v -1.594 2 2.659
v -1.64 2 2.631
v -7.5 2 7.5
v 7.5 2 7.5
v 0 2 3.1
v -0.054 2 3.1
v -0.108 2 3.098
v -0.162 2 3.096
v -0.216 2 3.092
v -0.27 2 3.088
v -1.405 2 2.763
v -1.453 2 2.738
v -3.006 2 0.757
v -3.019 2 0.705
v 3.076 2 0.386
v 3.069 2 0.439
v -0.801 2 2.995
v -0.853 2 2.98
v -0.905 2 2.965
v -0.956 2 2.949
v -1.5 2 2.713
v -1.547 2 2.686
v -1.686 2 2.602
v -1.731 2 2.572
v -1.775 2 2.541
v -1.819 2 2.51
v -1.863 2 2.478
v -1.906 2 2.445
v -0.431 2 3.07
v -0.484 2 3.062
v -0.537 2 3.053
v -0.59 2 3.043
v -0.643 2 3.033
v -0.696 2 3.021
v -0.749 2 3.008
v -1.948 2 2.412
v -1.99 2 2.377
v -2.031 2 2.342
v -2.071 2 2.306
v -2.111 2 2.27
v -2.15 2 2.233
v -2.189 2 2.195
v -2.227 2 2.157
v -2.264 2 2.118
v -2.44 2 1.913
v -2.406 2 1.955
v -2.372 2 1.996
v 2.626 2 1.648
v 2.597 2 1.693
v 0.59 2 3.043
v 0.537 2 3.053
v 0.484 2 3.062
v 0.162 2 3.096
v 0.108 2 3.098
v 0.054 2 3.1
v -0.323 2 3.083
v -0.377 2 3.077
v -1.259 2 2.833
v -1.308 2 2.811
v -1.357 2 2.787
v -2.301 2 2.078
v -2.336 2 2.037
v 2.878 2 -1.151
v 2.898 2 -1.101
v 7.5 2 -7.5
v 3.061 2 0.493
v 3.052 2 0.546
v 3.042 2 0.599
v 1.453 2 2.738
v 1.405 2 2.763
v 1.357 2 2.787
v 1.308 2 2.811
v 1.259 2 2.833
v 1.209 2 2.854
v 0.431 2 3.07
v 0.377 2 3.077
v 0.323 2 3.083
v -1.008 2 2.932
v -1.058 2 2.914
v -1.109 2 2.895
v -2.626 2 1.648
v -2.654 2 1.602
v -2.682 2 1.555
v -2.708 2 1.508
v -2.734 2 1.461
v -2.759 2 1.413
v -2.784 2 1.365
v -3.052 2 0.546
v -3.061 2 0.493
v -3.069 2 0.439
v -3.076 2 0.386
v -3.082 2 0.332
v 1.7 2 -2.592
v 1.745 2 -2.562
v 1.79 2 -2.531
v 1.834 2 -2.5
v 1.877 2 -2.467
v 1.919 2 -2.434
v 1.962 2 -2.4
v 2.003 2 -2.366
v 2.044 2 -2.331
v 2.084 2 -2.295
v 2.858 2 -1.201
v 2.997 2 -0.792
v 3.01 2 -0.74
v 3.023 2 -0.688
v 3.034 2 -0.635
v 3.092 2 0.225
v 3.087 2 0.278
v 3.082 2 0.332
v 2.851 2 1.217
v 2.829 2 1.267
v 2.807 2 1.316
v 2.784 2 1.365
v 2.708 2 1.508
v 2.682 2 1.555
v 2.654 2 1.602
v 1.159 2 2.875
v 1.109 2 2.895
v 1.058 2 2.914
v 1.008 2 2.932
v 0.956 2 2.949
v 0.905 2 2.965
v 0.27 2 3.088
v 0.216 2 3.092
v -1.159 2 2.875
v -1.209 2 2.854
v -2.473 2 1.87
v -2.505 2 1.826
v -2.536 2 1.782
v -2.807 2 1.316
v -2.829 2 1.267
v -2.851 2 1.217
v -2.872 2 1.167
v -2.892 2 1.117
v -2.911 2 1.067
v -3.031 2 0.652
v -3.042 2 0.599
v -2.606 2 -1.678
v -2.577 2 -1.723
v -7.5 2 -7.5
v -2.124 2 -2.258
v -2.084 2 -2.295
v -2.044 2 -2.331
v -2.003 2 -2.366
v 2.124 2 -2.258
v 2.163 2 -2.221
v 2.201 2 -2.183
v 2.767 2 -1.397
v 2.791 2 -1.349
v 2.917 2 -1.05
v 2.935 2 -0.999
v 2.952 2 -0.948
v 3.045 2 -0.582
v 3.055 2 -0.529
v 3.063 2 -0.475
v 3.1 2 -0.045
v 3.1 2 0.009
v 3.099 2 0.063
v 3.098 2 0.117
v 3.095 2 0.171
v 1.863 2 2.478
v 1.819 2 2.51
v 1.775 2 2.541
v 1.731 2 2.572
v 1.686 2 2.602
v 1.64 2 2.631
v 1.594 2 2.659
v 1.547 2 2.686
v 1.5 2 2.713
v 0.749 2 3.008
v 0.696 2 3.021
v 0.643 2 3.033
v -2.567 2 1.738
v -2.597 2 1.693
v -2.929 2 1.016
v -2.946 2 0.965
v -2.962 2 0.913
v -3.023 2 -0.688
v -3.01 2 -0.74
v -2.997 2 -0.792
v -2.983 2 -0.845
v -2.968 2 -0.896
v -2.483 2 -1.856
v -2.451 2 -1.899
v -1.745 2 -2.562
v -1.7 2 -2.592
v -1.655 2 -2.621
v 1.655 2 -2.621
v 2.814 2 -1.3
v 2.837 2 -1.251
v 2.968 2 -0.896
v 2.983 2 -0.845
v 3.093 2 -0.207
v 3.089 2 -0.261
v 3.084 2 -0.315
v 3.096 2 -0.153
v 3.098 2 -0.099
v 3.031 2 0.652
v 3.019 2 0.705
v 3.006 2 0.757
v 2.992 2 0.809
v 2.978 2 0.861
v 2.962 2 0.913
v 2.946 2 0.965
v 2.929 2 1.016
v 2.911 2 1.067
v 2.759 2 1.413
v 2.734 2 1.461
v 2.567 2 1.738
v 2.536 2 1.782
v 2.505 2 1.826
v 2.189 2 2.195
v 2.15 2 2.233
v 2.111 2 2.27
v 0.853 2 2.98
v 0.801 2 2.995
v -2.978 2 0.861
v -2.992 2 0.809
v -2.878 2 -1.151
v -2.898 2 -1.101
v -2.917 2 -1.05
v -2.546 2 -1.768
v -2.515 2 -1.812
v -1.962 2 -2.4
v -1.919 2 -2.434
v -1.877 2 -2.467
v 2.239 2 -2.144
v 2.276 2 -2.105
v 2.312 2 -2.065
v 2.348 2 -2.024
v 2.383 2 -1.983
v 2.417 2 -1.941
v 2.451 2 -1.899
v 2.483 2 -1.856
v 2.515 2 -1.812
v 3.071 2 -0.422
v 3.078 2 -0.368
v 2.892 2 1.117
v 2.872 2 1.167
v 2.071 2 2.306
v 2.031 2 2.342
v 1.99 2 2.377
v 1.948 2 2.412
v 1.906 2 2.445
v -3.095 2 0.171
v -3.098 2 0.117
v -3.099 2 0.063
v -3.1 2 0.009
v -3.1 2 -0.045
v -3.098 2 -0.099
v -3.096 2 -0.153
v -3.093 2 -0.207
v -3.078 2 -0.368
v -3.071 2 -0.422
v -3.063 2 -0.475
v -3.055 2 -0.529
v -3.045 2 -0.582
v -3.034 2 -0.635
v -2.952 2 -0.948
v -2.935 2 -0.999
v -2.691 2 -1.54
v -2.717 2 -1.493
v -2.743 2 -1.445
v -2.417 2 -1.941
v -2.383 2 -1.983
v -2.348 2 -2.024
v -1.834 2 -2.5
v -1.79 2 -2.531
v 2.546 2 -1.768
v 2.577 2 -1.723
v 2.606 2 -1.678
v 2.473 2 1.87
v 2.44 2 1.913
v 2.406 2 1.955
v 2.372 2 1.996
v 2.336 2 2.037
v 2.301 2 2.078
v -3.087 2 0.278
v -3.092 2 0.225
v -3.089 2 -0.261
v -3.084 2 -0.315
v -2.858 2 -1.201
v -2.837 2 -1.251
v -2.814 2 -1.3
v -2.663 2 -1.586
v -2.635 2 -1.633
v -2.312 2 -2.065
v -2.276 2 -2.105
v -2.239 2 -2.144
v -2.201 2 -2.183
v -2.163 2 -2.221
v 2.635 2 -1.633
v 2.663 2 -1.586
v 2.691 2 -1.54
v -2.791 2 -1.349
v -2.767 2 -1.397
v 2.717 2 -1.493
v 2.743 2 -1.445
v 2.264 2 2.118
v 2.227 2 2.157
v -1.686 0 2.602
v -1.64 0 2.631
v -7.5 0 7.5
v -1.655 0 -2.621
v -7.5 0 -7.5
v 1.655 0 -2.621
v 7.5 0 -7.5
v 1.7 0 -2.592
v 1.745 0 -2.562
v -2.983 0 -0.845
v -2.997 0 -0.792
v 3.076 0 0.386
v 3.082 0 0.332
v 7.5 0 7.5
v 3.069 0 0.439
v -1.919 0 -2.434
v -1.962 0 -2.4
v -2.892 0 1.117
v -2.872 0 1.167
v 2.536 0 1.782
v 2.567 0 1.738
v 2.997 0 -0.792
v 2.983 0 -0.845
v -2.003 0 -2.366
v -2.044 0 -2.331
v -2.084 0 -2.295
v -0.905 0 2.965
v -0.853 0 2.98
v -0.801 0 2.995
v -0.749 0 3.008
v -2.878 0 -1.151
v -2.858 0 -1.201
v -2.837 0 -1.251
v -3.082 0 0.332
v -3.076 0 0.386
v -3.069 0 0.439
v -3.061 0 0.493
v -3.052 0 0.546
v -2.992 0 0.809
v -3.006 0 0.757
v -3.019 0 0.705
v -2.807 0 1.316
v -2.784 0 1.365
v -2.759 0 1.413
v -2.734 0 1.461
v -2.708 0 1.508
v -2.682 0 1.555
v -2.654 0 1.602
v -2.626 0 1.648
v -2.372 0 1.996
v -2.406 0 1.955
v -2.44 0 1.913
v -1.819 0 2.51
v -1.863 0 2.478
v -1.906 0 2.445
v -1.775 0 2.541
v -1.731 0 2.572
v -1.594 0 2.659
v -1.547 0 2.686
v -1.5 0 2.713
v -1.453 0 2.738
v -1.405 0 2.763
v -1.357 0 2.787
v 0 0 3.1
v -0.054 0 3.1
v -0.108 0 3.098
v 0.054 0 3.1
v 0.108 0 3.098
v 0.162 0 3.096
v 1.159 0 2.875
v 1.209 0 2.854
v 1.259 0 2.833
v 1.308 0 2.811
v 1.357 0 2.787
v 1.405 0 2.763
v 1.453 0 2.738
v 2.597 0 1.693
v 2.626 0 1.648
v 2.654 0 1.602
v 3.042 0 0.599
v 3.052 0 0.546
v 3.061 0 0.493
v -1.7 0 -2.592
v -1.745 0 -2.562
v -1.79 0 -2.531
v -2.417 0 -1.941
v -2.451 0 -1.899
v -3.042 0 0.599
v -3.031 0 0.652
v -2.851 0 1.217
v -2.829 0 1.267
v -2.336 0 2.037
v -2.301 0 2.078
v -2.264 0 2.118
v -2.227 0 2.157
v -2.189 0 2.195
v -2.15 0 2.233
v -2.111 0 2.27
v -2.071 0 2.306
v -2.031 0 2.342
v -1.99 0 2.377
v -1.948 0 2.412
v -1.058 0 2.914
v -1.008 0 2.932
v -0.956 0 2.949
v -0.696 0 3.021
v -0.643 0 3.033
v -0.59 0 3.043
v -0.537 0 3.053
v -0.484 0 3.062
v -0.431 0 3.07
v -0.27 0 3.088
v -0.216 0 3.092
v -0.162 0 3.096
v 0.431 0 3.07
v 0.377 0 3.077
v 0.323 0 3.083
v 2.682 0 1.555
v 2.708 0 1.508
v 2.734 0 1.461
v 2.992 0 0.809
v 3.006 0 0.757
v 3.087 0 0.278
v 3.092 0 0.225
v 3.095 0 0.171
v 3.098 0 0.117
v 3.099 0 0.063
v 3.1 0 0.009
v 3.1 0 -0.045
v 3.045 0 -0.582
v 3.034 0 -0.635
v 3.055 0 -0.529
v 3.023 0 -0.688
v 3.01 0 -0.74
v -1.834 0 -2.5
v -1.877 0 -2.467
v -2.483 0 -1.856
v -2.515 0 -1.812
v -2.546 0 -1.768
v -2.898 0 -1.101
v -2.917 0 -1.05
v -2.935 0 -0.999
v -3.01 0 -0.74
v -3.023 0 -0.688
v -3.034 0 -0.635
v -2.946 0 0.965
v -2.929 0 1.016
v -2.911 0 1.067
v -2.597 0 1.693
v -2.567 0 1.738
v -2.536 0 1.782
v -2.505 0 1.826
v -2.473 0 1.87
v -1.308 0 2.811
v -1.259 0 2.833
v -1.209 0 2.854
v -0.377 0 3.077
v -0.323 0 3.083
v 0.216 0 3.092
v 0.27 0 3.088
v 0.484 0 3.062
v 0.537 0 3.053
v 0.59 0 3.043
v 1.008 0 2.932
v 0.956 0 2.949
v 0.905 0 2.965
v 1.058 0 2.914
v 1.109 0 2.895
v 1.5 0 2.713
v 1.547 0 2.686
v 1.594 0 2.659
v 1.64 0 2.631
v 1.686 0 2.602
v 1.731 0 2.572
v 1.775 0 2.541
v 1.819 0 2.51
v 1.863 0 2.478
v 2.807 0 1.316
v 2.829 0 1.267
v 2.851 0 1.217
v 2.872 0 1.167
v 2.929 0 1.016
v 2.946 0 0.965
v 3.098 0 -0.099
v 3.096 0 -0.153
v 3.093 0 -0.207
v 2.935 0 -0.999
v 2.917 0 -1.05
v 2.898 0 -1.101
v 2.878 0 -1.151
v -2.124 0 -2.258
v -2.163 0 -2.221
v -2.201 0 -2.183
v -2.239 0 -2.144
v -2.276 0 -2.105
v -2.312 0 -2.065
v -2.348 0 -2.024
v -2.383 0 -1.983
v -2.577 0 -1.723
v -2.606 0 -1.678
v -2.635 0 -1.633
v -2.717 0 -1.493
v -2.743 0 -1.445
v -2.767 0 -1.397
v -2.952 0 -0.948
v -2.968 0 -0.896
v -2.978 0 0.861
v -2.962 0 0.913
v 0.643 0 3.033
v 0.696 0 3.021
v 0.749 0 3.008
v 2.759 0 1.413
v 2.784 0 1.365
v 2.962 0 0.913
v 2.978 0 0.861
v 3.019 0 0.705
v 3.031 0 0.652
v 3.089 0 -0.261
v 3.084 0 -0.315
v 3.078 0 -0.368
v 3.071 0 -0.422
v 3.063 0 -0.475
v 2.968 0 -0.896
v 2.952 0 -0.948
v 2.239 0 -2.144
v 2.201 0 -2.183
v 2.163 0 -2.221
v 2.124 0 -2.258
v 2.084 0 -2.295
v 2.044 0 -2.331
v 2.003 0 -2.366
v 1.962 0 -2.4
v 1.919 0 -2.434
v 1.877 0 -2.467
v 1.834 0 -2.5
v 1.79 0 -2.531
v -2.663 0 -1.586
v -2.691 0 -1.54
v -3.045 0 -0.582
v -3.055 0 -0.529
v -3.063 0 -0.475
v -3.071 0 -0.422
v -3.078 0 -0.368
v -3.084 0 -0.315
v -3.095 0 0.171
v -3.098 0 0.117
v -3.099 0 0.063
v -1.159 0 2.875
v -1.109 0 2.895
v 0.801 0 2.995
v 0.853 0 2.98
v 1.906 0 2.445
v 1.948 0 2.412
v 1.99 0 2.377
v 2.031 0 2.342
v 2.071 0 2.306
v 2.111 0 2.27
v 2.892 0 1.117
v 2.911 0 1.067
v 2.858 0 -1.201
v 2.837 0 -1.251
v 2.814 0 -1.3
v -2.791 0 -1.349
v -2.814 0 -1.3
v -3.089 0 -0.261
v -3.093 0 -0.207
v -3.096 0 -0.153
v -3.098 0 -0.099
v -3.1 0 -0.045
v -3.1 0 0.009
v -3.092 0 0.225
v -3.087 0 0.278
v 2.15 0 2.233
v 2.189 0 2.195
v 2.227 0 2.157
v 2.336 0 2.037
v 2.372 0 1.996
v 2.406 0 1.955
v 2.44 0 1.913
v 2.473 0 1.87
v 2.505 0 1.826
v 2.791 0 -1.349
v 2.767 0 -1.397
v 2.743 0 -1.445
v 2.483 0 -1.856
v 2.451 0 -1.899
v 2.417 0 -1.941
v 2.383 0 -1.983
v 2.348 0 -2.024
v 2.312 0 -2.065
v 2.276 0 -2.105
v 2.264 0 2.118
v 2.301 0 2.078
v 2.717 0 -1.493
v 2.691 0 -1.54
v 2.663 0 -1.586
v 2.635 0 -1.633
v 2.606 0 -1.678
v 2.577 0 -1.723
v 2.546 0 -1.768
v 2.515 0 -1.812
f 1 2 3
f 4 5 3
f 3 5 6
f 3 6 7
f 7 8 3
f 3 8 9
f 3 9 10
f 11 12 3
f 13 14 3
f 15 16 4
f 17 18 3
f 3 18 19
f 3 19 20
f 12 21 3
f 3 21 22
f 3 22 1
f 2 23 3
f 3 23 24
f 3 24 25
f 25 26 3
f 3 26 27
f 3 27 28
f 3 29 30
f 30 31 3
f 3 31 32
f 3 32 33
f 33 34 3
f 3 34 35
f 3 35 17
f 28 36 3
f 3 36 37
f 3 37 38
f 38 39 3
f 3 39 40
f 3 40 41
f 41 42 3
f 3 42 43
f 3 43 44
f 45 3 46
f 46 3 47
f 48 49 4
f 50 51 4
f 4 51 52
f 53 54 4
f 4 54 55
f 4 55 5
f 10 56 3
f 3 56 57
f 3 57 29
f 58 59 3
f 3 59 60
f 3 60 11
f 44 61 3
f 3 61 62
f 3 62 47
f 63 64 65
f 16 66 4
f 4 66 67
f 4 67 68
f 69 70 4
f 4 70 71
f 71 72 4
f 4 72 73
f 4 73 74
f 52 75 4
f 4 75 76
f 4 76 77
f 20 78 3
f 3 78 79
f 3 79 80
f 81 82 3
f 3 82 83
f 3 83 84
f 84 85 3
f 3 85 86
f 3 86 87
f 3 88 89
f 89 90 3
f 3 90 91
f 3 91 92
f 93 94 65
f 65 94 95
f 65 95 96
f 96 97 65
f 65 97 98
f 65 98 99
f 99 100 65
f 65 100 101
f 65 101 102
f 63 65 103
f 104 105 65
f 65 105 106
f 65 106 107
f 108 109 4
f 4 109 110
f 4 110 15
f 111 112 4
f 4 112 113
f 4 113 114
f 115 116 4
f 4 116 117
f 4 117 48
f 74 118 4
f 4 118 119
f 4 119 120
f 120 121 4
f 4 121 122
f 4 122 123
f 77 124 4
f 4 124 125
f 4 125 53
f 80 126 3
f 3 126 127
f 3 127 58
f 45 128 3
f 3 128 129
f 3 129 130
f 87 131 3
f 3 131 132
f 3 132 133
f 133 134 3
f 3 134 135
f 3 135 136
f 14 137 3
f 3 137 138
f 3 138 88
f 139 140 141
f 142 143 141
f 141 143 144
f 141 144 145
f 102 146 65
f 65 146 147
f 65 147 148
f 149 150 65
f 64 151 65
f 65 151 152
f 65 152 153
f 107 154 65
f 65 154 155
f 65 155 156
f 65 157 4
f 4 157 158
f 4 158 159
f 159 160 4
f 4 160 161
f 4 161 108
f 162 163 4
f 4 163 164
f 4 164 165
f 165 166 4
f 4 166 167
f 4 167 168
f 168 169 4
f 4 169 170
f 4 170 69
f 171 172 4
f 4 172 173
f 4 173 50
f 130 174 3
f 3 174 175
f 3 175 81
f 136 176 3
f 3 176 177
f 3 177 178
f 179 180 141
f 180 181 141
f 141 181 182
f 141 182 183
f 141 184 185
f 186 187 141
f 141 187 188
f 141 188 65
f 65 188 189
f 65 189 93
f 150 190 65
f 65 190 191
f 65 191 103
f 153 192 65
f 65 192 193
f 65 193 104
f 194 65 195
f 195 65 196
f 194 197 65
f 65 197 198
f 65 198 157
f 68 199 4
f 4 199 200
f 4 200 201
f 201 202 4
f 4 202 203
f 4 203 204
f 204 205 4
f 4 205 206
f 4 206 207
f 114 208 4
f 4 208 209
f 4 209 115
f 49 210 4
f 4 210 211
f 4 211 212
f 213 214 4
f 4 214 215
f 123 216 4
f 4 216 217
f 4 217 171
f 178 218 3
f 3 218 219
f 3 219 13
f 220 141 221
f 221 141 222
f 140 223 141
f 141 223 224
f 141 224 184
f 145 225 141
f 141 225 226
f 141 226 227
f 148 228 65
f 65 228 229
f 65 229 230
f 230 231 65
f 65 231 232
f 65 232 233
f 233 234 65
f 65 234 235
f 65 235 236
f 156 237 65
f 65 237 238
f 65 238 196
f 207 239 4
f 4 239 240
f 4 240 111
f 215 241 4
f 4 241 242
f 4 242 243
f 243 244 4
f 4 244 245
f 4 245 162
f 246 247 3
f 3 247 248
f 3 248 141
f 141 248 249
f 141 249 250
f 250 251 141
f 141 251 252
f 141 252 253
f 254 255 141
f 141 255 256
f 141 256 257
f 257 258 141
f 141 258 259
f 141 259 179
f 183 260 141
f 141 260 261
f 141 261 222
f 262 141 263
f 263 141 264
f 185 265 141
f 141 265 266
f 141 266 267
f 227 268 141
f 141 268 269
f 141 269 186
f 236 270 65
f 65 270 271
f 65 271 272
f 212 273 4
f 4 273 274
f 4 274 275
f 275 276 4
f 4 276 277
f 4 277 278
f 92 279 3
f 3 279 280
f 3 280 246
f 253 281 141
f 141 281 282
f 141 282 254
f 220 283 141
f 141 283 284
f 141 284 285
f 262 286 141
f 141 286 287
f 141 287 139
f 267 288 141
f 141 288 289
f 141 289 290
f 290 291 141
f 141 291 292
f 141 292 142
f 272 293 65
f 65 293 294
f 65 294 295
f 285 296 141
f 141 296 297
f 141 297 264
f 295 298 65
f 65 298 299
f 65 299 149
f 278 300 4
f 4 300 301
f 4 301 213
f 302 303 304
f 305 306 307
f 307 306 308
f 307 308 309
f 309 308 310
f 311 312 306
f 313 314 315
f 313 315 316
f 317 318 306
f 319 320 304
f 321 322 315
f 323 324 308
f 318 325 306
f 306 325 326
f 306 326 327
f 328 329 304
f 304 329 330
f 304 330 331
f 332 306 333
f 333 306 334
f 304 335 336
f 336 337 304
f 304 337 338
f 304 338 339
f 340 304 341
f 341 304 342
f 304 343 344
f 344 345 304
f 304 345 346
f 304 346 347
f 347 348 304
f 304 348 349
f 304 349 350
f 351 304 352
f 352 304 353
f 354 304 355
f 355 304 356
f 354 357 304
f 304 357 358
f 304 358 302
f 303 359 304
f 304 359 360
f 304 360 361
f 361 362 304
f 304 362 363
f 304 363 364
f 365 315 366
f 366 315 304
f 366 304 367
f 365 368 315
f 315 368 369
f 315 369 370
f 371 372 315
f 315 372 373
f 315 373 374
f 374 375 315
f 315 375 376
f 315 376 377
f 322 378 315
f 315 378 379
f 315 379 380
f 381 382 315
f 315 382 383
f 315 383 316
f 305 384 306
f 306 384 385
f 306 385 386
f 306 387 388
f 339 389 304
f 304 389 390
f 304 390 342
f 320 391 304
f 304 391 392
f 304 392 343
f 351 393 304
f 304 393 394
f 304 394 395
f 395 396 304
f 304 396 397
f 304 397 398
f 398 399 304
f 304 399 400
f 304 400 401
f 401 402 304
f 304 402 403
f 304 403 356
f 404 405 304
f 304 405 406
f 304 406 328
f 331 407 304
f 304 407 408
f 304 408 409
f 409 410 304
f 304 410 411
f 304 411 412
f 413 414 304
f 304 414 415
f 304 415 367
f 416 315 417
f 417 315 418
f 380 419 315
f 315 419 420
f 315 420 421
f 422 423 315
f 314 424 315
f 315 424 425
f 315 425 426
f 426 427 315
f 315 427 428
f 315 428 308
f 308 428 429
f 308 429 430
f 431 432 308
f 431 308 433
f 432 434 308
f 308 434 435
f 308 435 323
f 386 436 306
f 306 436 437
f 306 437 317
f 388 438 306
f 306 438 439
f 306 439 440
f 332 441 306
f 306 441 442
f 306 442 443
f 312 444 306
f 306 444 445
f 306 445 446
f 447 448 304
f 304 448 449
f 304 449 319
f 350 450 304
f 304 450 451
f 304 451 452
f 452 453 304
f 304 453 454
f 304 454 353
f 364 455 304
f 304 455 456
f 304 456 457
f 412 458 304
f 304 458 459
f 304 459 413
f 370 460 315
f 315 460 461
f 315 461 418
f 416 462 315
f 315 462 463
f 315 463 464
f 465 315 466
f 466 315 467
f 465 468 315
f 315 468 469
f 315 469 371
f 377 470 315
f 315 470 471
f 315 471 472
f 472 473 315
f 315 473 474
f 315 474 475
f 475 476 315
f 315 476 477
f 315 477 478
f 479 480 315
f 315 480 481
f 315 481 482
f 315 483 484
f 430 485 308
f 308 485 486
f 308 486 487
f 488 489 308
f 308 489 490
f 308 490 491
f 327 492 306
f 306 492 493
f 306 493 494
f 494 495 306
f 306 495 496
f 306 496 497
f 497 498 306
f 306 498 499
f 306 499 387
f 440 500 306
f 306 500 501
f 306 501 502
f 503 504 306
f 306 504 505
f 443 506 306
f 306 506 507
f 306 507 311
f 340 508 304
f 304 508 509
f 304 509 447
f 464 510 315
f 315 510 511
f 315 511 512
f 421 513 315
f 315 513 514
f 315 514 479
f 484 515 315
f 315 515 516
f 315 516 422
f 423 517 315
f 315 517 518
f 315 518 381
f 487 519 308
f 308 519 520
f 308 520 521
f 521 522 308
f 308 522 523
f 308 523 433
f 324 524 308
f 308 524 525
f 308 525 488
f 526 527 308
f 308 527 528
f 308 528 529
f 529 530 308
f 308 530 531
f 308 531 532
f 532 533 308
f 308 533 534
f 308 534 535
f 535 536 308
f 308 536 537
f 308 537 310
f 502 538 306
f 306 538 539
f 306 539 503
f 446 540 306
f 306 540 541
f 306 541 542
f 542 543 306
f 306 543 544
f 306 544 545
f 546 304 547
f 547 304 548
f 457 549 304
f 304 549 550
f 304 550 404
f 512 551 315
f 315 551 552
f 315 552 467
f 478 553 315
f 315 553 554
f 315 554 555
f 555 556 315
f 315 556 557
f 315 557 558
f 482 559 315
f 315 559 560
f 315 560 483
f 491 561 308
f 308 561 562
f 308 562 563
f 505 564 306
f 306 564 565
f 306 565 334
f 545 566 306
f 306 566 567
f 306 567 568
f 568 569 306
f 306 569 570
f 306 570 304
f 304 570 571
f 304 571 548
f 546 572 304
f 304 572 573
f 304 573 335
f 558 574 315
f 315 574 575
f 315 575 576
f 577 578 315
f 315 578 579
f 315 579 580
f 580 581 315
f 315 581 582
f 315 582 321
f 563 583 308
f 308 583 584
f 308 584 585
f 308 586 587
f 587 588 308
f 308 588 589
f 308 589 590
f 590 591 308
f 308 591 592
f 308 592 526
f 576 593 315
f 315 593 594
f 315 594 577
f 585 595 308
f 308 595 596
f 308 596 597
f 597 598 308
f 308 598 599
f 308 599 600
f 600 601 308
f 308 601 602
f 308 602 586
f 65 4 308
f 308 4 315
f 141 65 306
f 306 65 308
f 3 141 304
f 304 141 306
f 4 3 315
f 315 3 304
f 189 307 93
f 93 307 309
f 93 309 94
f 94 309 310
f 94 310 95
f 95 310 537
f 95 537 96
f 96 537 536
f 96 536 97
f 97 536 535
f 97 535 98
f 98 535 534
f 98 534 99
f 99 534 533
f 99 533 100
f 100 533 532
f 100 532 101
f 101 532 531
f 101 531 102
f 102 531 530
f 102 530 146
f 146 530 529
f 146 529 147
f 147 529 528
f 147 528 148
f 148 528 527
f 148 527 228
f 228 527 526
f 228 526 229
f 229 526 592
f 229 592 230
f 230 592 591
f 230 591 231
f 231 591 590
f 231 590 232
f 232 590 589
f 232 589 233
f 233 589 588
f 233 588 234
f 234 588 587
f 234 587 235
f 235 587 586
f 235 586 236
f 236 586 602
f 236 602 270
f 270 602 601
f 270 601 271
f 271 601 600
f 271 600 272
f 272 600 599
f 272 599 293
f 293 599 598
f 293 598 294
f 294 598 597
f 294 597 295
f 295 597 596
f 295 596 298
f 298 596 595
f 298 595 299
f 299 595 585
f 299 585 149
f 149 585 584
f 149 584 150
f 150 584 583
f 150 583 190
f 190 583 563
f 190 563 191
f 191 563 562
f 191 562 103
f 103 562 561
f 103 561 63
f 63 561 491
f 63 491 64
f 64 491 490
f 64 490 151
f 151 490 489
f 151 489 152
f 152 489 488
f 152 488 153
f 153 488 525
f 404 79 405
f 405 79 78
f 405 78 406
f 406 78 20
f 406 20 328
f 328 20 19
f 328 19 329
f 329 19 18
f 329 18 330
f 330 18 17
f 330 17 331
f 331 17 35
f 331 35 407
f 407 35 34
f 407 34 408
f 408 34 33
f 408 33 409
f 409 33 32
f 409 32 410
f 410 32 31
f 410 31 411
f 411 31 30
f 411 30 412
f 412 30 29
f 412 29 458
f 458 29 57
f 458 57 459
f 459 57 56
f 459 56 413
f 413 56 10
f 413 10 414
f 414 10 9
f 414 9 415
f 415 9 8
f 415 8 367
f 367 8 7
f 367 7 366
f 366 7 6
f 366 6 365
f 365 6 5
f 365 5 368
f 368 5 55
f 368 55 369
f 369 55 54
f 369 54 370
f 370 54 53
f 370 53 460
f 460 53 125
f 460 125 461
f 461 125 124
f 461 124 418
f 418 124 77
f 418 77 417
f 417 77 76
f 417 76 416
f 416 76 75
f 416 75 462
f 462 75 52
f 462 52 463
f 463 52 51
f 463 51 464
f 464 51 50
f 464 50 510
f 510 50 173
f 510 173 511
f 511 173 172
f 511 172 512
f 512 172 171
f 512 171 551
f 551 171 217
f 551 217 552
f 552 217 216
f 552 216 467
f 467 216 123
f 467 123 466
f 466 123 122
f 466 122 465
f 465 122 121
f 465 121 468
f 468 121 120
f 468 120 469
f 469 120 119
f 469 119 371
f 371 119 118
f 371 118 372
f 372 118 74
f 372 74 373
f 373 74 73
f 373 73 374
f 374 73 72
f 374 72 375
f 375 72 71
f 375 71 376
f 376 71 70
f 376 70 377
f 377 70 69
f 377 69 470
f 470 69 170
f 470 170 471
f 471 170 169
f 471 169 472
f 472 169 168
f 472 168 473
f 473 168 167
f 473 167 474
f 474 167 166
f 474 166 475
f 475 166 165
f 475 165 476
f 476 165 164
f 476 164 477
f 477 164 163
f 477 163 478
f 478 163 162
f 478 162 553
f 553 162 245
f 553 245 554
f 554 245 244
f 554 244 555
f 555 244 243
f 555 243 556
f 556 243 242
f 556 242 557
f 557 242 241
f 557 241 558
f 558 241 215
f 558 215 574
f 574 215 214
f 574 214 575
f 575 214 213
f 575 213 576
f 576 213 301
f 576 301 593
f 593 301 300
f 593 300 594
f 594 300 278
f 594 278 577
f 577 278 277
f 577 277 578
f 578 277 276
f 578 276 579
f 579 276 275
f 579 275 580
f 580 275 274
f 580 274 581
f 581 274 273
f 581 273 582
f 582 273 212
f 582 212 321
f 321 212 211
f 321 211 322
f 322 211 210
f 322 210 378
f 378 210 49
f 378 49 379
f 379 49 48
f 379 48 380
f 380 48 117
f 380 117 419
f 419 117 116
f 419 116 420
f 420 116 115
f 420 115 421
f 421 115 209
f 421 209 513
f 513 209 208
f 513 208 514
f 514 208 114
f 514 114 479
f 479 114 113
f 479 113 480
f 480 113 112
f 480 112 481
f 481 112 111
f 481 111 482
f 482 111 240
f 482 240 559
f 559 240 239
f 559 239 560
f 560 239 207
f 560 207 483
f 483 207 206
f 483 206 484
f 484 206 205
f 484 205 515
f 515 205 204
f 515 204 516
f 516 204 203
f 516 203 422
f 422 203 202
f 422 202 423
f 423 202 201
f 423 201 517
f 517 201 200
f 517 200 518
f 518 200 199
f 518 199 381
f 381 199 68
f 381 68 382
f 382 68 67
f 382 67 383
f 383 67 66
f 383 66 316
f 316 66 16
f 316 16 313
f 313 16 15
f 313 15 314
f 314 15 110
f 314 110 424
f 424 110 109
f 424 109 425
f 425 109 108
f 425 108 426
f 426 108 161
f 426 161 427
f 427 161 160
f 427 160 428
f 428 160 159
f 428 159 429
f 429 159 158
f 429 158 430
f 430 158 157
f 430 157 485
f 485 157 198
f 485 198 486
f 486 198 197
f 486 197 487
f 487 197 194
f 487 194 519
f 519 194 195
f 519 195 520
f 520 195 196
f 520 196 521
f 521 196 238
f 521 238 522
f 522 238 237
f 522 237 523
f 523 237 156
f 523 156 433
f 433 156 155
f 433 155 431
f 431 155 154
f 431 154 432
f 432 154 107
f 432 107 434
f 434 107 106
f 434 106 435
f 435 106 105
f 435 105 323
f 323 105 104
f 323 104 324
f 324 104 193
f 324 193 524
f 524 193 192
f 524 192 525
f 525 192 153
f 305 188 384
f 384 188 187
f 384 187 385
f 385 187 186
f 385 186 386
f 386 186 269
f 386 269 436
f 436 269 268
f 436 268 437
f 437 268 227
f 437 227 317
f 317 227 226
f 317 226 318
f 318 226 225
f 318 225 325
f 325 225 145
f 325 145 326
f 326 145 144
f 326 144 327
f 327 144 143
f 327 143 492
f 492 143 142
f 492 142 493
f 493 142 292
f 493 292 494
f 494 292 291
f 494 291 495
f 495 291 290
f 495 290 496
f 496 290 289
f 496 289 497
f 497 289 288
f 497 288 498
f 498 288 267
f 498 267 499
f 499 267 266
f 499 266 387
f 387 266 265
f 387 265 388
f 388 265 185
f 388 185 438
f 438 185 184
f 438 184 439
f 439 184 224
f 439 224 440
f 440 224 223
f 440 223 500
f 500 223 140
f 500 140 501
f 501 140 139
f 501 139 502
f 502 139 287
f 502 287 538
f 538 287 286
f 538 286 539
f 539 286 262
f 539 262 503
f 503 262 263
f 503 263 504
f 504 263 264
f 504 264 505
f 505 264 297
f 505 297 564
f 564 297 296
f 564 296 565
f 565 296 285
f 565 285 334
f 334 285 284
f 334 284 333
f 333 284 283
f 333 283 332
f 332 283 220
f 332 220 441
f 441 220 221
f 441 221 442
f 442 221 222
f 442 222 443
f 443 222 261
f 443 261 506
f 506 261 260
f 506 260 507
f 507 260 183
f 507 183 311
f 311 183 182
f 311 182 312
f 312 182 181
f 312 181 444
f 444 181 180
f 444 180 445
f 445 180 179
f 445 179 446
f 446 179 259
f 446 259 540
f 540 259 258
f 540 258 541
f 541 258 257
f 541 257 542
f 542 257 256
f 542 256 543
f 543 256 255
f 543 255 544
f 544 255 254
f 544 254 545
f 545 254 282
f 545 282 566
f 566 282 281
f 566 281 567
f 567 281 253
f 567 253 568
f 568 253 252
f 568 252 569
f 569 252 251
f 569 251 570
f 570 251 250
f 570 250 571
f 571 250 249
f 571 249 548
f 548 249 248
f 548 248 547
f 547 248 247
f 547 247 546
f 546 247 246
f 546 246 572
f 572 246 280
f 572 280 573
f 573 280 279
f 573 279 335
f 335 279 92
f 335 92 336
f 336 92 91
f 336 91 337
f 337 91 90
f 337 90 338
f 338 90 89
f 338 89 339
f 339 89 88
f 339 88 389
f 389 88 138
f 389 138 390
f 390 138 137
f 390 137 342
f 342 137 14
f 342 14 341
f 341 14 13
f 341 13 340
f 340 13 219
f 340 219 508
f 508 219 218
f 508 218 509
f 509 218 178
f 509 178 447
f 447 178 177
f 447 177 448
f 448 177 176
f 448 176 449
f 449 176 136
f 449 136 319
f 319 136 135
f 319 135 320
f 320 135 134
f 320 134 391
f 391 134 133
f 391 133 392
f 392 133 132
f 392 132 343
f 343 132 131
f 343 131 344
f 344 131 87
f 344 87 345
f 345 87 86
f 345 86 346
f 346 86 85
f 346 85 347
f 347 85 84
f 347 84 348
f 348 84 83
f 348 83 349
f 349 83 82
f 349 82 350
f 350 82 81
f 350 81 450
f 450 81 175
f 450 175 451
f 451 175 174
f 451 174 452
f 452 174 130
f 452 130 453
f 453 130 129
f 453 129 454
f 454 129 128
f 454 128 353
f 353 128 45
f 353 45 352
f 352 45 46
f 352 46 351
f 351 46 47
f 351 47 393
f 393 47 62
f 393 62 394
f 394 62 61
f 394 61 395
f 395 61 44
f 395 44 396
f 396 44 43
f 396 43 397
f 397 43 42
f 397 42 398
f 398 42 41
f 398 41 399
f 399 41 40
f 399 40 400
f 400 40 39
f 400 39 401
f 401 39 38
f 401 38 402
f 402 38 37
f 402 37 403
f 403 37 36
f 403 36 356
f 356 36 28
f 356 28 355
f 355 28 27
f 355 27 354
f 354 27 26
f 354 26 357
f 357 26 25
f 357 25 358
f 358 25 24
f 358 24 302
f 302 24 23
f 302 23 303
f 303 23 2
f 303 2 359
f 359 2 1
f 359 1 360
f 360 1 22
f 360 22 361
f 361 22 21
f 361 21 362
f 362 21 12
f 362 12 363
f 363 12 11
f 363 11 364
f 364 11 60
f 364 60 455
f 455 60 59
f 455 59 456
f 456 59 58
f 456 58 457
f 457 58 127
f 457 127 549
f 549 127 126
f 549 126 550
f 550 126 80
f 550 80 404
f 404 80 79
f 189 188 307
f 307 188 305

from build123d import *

# Parameters (mm, degrees)
SKETCH1_W           = 15
SKETCH1_H           = 15
BOSS_EXTRUDE1_DEPTH = 2


with BuildPart() as part:
    # Sketch1 → Boss-Extrude1 (new body)
    with BuildSketch(Plane(origin=(0, 0, 0), x_dir=(1, 0, 0), z_dir=(0, 1, 0))):
        Rectangle(SKETCH1_W, SKETCH1_H)
        with BuildLine():
            Line((-1.655, 2.621254471), (1.655, 2.621254471))
            ThreePointArc((1.655, 2.621254471), (0, -3.1), (-1.655, 2.621254471))
        make_face(mode=Mode.SUBTRACT)
    extrude(amount=BOSS_EXTRUDE1_DEPTH)


solid = part.part
